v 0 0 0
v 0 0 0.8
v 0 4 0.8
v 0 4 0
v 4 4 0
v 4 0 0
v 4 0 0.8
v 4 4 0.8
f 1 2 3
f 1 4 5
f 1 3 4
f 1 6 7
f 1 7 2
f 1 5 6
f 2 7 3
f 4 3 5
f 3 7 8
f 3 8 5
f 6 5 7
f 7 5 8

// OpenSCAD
/* Warning, this is a very basic generator with a lot of approximation 
input data : [WQFN, TSB, 4x4x0.8mm, 20, , A, C04-21444A]
generated by com.zoubworld.electronics.cad.model3d.Basic
Date : Sun Feb 15 10:50:49 CET 2026
*/

//body
color("black")
translate([0,0,0])
cube([4.0,4.0,0.8], center=false);
